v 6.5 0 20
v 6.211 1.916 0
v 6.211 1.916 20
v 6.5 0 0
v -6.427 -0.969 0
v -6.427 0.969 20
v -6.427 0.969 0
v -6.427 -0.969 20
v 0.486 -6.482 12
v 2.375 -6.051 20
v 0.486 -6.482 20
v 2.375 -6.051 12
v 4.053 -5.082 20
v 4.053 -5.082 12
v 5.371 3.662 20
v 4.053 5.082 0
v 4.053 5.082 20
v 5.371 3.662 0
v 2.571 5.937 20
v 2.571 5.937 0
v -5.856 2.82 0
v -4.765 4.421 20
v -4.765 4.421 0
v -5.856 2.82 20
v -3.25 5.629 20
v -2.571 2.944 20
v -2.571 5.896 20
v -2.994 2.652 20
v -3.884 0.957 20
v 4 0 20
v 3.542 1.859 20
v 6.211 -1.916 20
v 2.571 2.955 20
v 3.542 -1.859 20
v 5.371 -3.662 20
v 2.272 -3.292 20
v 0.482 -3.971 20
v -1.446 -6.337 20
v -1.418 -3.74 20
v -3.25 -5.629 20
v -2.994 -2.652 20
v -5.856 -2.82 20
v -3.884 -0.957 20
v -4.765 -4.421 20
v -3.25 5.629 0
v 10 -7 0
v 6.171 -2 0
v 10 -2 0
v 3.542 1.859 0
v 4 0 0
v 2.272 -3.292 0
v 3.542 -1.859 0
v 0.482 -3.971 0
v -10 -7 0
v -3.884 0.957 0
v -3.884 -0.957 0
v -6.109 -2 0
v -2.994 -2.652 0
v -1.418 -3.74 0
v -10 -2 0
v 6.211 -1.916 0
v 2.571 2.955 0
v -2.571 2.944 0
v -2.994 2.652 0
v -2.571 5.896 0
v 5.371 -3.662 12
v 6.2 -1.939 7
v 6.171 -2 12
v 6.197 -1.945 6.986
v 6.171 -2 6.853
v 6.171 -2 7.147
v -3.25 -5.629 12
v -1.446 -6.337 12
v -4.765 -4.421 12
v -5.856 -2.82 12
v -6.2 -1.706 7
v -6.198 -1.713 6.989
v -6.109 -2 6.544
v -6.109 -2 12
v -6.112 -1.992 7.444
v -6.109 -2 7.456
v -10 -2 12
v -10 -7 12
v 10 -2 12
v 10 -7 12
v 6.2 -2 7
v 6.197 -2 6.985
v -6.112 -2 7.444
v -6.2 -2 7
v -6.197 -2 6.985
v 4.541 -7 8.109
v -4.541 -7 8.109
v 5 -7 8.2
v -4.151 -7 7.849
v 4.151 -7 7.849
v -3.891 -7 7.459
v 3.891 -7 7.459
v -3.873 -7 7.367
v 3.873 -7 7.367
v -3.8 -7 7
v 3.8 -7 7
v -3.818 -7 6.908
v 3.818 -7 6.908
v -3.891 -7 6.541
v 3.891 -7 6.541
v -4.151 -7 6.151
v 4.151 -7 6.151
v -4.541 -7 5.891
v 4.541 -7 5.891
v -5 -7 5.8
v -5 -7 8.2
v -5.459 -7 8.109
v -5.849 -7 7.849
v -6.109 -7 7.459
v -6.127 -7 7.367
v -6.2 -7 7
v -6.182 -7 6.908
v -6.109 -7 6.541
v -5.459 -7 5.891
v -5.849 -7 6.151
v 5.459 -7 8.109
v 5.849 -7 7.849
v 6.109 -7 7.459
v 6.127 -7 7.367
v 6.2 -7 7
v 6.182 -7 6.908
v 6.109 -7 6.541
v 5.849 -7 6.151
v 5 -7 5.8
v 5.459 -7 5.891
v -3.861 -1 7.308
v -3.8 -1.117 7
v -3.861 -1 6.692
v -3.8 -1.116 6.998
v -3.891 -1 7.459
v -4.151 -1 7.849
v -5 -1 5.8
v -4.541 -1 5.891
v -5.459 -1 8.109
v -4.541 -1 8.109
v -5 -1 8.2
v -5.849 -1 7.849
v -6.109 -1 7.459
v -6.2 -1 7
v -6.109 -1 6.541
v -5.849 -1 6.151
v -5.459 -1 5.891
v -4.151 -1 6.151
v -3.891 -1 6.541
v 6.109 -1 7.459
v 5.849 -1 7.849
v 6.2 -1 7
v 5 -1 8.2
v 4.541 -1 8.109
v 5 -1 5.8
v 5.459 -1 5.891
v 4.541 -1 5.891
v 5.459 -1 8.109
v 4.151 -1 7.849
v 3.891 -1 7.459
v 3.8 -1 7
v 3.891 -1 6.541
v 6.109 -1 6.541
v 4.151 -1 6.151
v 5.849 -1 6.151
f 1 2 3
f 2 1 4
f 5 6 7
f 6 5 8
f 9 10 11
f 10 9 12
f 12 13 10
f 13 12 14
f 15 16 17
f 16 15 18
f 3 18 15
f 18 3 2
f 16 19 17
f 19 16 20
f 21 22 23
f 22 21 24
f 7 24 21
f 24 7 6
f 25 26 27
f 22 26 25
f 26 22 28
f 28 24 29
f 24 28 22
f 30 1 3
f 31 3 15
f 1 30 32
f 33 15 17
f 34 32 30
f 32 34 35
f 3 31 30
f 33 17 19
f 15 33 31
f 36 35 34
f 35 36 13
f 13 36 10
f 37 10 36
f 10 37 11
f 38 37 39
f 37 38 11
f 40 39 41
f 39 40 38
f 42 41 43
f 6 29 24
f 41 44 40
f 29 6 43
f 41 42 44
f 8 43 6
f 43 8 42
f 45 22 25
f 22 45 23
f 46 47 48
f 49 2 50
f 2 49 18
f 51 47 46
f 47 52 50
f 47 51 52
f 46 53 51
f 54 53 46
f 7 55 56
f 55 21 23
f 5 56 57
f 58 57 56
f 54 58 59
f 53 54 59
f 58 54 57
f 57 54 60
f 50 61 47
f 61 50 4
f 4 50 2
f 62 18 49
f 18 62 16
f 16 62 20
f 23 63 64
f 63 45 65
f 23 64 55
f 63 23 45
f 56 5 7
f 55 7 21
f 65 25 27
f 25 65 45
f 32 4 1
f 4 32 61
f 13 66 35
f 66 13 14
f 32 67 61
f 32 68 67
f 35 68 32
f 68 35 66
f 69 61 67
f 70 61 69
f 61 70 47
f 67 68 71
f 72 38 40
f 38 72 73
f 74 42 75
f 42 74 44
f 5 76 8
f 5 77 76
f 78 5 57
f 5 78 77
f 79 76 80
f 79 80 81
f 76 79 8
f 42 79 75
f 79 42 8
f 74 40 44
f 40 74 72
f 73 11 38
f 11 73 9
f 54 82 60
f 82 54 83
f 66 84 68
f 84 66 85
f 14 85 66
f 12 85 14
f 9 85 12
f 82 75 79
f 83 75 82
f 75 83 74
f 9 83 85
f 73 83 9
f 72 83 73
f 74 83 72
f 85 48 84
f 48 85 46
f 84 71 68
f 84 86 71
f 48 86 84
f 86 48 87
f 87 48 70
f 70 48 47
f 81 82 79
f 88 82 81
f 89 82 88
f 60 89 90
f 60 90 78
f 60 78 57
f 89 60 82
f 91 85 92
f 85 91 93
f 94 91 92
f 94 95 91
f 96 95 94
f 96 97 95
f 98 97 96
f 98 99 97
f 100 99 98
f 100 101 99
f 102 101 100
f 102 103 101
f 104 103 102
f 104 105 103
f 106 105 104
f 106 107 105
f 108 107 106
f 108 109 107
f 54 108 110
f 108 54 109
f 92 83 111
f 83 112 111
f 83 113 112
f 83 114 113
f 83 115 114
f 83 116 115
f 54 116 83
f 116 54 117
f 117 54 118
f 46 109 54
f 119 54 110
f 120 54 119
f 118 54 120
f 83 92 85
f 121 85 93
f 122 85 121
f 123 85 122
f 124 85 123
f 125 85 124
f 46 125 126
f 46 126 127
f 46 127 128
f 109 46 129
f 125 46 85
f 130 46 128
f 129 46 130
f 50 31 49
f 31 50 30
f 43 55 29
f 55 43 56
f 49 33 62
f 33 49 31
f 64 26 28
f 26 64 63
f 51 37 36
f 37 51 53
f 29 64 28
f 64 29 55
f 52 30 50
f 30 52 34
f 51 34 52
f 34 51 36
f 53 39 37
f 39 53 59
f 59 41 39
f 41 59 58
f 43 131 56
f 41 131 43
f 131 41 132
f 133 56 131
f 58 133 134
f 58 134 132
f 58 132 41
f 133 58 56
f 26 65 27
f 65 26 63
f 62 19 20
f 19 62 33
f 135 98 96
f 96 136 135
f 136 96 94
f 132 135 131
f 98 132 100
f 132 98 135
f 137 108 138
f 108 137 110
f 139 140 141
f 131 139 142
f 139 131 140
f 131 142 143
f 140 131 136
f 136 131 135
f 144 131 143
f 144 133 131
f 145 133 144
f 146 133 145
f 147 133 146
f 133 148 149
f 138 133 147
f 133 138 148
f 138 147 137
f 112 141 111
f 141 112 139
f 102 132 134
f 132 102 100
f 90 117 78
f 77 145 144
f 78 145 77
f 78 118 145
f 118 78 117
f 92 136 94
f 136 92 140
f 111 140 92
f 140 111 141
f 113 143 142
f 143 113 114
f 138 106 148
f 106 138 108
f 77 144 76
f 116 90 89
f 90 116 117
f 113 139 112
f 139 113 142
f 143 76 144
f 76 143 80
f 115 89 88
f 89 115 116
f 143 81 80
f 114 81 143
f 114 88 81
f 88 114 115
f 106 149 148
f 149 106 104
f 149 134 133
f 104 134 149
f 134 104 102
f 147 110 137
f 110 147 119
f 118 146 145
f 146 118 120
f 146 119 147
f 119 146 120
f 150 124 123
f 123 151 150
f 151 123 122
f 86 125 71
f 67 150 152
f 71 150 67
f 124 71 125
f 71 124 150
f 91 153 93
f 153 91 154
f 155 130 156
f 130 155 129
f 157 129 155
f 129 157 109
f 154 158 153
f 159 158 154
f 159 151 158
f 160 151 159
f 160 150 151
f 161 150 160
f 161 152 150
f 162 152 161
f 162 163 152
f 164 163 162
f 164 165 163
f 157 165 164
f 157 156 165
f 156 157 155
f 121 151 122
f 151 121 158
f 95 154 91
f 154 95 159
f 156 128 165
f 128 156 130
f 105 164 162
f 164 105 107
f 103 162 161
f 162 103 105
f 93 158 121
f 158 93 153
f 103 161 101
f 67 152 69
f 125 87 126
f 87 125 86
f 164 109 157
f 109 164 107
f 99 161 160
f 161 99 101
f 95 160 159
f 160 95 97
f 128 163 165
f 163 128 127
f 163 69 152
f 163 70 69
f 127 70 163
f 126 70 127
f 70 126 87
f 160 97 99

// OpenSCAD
//-----------------------------------------------------------------
//-  Endstop clamp, derived from the Prusa decorator clamps
//--  (c) Juan Gonzalez Gomez (Obijuan) juan@iearobotics.com, 
//--  April 2013
//-----------------------------------------------------------------

X = 0;
Y = 1;
Z = 2;

//-- Clamp parameters
rod_diam = 8;
clamp_diam = rod_diam + 5;
open_angle = 80;
width = 20;
base_lx = 20;
base_ly = 5;
base_lz = 12;

zip_tie_holes = [clamp_diam, 1.5, 3];

//-- Internal parameters
open_x = 2*(rod_diam/2)*sin(open_angle/2);

module Prusa_clamp() 
{
  union() {

    //-- Clamp
    difference() {
      union(){
        //-- outer cylinder
      cylinder(r=clamp_diam/2, h=width);

        //-- clamp Base
    translate([0,-clamp_diam/2+2,base_lz/2])
    cube([base_lx, base_ly, base_lz], center=true);
      }
      //-- Inner cylinder
      cylinder(r=rod_diam/2, h=width*3,center=true);

      //-- Break the ring substracting a cube
      translate([-open_x/2,0,-1])
      cube([open_x, clamp_diam+10, width+2]);
    }
  }
}

module endstop() {
    endstop_width = 6.5;
  difference(){
    union(){
      // Telo endstopu
      translate([0,0,0]) color("blue") cube([10,20,endstop_width], center=true);
      // Vyvody
	  translate([-9,7,0]) cube([8,3,4],center=true);
      translate([-9,-7,0]) cube([8,3,4],center=true);
      // Spinac
      translate([5,7,0]) cube([3,3,4],center=true);
    }
  // Otvory pro zip pasku
  translate([-2,5,0]) cylinder(r=1.5,h=10,$fn=16,center=true);
  translate([-2,-5,0]) cylinder(r=1.5,h=10,$fn=16,center=true);
  }
  
}


//---  Endstop holder

difference() {

  Prusa_clamp();
    #translate([-5,-16,7])
    rotate([90,0,0])
  cylinder(r=1.2,h=30,$fn=16,center=true);
  #translate([5,-16,7])
    rotate([90,0,0])
  cylinder(r=1.2,h=30,$fn=16,center=true);
}

%translate([0,-12,5]) rotate([180,90,90]) endstop();
